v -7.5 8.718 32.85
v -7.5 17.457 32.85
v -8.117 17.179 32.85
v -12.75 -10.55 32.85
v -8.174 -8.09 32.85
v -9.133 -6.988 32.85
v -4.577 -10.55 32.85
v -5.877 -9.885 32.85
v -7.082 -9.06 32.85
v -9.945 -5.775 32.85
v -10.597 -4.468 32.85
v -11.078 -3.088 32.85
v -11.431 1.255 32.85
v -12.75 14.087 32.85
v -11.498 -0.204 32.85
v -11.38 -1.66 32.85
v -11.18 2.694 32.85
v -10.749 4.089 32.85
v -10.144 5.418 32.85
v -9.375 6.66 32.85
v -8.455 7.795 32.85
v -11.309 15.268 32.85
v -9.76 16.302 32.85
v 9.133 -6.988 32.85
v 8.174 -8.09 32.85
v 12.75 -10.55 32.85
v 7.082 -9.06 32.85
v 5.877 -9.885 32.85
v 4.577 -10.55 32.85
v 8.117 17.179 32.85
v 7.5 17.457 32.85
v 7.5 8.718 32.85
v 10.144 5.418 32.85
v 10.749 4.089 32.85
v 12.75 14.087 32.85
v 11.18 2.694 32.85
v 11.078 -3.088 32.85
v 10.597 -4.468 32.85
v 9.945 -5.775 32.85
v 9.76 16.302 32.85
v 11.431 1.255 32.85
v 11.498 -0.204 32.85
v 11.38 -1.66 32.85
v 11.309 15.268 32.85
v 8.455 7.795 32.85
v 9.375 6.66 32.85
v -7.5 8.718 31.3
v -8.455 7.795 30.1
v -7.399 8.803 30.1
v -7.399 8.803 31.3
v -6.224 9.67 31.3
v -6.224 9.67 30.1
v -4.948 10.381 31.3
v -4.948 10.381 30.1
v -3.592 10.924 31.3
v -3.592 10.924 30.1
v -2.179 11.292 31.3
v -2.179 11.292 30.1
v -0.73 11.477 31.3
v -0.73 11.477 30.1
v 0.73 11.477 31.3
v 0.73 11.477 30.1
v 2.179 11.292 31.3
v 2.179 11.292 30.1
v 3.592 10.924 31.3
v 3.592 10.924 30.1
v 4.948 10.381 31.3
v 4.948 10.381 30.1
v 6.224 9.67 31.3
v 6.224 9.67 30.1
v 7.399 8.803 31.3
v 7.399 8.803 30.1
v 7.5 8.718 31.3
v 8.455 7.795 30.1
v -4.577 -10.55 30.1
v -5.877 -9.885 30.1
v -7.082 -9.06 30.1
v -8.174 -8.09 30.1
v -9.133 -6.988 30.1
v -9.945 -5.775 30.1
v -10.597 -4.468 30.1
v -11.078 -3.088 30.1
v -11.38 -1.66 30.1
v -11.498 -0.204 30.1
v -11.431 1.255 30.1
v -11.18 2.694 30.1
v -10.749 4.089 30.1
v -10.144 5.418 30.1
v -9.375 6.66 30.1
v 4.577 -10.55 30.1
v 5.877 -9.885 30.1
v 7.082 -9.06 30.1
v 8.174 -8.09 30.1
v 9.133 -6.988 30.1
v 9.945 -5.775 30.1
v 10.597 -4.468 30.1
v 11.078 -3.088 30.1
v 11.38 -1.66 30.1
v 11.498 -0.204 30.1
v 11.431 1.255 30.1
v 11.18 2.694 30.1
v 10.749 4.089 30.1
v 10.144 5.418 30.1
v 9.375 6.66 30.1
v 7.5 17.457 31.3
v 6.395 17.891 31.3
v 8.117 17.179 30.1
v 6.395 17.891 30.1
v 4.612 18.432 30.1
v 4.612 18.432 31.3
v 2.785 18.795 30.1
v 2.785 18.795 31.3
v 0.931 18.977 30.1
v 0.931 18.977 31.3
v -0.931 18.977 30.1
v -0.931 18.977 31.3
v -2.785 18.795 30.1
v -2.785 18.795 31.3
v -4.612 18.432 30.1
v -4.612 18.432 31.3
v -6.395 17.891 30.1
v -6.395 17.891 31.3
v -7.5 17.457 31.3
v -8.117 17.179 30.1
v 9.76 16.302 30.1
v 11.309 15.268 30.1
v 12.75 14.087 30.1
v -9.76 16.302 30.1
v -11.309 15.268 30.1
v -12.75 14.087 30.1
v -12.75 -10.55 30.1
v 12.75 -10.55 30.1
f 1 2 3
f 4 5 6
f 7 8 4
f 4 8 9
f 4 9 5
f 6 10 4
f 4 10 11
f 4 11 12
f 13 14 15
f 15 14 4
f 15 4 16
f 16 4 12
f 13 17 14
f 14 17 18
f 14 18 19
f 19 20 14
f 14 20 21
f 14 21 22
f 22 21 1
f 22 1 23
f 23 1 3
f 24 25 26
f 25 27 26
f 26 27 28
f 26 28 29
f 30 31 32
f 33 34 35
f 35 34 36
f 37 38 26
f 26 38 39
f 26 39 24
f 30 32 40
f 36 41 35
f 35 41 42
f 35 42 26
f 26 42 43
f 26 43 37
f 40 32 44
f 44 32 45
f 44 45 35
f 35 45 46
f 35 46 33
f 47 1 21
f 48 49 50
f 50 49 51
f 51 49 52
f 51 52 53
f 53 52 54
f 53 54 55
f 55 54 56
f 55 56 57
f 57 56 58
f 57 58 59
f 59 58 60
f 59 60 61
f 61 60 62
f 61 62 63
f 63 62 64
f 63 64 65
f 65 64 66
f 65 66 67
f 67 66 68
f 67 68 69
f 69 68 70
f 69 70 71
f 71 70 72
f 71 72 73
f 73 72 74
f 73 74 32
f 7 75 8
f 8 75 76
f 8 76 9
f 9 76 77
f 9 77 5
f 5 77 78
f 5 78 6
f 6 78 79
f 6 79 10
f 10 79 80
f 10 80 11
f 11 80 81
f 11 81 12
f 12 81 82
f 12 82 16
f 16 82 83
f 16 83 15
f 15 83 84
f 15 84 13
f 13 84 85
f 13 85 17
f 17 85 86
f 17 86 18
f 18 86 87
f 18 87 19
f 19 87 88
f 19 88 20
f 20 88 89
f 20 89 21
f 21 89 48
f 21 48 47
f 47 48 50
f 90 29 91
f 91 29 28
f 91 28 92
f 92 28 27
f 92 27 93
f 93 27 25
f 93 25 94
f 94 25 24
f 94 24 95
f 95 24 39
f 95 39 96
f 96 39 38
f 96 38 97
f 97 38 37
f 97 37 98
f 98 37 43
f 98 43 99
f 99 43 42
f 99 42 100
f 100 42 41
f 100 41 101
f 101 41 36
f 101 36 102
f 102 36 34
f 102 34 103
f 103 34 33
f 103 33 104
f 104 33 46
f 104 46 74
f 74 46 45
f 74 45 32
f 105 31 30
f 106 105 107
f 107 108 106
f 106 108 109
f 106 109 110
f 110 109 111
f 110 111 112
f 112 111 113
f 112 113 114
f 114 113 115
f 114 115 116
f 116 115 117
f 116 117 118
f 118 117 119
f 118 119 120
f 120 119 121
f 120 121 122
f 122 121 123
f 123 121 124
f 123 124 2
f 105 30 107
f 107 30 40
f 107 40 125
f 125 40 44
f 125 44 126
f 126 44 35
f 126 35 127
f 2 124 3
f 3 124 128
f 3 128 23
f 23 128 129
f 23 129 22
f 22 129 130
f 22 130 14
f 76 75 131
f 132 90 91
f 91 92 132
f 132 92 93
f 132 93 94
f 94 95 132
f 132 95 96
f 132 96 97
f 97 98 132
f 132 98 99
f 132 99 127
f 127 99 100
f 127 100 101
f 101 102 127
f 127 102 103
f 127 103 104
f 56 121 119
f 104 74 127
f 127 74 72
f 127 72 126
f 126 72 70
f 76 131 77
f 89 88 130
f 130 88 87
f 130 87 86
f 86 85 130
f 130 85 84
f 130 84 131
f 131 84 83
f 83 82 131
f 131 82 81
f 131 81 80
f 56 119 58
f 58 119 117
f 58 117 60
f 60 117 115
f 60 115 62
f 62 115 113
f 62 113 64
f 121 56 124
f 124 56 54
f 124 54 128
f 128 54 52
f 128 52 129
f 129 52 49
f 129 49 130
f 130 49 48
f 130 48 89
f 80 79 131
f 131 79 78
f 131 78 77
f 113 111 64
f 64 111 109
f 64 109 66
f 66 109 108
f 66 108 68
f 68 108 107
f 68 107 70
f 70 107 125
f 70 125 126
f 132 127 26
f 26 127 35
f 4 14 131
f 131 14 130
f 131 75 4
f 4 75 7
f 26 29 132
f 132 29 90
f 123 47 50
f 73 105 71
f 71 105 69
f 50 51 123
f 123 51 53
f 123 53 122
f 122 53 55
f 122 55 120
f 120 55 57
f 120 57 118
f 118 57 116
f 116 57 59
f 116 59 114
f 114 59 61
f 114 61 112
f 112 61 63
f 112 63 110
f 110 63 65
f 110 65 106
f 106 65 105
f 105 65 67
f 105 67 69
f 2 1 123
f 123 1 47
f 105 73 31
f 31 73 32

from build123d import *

# Parameters (mm, degrees)
S_CYL1_R       = 19
BOSS_1_DEPTH   = 2.75
S_HOLE2_R      = 11.5
HOLE_2_DEPTH   = 2.95
S_CUT3_W       = 7.25
S_CUT3_H       = 40
POCKET_3_DEPTH = 2.95
S_CUT4_W       = 7.25
S_CUT4_H       = 40
POCKET_4_DEPTH = 2.95
S_CUT5_W       = 40
S_CUT5_H       = 9.45
POCKET_5_DEPTH = 2.95
S_CUT6_W       = 15
S_CUT6_H       = 11.9
POCKET_6_DEPTH = 1.65


with BuildPart() as part:
    # S_cyl1 → Boss_1 (new body)
    with BuildSketch(Plane.XY.offset(30.1)):
        Circle(S_CYL1_R)
    extrude(amount=BOSS_1_DEPTH)

    # S_hole2 → Hole_2 (cut)
    with BuildSketch(Plane.XY.offset(30)):
        with Locations(Location((0, 0, 0), (0, 0, 180))):
            Circle(S_HOLE2_R)
    extrude(amount=HOLE_2_DEPTH, mode=Mode.SUBTRACT)

    # S_cut3 → Pocket_3 (cut)
    with BuildSketch(Plane.XY.offset(30)):
        with Locations((16.375, 0)):
            Rectangle(S_CUT3_W, S_CUT3_H)
    extrude(amount=POCKET_3_DEPTH, mode=Mode.SUBTRACT)

    # S_cut4 → Pocket_4 (cut)
    with BuildSketch(Plane.XY.offset(30)):
        with Locations((-16.375, 0)):
            Rectangle(S_CUT4_W, S_CUT4_H)
    extrude(amount=POCKET_4_DEPTH, mode=Mode.SUBTRACT)

    # S_cut5 → Pocket_5 (cut)
    with BuildSketch(Plane.XY.offset(30)):
        with Locations((0, -15.275)):
            Rectangle(S_CUT5_W, S_CUT5_H)
    extrude(amount=POCKET_5_DEPTH, mode=Mode.SUBTRACT)

    # S_cut6 → Pocket_6 (cut)
    with BuildSketch(Plane.XY.offset(31.3)):
        with Locations((0, 14.05)):
            Rectangle(S_CUT6_W, S_CUT6_H)
    extrude(amount=POCKET_6_DEPTH, mode=Mode.SUBTRACT)


solid = part.part
